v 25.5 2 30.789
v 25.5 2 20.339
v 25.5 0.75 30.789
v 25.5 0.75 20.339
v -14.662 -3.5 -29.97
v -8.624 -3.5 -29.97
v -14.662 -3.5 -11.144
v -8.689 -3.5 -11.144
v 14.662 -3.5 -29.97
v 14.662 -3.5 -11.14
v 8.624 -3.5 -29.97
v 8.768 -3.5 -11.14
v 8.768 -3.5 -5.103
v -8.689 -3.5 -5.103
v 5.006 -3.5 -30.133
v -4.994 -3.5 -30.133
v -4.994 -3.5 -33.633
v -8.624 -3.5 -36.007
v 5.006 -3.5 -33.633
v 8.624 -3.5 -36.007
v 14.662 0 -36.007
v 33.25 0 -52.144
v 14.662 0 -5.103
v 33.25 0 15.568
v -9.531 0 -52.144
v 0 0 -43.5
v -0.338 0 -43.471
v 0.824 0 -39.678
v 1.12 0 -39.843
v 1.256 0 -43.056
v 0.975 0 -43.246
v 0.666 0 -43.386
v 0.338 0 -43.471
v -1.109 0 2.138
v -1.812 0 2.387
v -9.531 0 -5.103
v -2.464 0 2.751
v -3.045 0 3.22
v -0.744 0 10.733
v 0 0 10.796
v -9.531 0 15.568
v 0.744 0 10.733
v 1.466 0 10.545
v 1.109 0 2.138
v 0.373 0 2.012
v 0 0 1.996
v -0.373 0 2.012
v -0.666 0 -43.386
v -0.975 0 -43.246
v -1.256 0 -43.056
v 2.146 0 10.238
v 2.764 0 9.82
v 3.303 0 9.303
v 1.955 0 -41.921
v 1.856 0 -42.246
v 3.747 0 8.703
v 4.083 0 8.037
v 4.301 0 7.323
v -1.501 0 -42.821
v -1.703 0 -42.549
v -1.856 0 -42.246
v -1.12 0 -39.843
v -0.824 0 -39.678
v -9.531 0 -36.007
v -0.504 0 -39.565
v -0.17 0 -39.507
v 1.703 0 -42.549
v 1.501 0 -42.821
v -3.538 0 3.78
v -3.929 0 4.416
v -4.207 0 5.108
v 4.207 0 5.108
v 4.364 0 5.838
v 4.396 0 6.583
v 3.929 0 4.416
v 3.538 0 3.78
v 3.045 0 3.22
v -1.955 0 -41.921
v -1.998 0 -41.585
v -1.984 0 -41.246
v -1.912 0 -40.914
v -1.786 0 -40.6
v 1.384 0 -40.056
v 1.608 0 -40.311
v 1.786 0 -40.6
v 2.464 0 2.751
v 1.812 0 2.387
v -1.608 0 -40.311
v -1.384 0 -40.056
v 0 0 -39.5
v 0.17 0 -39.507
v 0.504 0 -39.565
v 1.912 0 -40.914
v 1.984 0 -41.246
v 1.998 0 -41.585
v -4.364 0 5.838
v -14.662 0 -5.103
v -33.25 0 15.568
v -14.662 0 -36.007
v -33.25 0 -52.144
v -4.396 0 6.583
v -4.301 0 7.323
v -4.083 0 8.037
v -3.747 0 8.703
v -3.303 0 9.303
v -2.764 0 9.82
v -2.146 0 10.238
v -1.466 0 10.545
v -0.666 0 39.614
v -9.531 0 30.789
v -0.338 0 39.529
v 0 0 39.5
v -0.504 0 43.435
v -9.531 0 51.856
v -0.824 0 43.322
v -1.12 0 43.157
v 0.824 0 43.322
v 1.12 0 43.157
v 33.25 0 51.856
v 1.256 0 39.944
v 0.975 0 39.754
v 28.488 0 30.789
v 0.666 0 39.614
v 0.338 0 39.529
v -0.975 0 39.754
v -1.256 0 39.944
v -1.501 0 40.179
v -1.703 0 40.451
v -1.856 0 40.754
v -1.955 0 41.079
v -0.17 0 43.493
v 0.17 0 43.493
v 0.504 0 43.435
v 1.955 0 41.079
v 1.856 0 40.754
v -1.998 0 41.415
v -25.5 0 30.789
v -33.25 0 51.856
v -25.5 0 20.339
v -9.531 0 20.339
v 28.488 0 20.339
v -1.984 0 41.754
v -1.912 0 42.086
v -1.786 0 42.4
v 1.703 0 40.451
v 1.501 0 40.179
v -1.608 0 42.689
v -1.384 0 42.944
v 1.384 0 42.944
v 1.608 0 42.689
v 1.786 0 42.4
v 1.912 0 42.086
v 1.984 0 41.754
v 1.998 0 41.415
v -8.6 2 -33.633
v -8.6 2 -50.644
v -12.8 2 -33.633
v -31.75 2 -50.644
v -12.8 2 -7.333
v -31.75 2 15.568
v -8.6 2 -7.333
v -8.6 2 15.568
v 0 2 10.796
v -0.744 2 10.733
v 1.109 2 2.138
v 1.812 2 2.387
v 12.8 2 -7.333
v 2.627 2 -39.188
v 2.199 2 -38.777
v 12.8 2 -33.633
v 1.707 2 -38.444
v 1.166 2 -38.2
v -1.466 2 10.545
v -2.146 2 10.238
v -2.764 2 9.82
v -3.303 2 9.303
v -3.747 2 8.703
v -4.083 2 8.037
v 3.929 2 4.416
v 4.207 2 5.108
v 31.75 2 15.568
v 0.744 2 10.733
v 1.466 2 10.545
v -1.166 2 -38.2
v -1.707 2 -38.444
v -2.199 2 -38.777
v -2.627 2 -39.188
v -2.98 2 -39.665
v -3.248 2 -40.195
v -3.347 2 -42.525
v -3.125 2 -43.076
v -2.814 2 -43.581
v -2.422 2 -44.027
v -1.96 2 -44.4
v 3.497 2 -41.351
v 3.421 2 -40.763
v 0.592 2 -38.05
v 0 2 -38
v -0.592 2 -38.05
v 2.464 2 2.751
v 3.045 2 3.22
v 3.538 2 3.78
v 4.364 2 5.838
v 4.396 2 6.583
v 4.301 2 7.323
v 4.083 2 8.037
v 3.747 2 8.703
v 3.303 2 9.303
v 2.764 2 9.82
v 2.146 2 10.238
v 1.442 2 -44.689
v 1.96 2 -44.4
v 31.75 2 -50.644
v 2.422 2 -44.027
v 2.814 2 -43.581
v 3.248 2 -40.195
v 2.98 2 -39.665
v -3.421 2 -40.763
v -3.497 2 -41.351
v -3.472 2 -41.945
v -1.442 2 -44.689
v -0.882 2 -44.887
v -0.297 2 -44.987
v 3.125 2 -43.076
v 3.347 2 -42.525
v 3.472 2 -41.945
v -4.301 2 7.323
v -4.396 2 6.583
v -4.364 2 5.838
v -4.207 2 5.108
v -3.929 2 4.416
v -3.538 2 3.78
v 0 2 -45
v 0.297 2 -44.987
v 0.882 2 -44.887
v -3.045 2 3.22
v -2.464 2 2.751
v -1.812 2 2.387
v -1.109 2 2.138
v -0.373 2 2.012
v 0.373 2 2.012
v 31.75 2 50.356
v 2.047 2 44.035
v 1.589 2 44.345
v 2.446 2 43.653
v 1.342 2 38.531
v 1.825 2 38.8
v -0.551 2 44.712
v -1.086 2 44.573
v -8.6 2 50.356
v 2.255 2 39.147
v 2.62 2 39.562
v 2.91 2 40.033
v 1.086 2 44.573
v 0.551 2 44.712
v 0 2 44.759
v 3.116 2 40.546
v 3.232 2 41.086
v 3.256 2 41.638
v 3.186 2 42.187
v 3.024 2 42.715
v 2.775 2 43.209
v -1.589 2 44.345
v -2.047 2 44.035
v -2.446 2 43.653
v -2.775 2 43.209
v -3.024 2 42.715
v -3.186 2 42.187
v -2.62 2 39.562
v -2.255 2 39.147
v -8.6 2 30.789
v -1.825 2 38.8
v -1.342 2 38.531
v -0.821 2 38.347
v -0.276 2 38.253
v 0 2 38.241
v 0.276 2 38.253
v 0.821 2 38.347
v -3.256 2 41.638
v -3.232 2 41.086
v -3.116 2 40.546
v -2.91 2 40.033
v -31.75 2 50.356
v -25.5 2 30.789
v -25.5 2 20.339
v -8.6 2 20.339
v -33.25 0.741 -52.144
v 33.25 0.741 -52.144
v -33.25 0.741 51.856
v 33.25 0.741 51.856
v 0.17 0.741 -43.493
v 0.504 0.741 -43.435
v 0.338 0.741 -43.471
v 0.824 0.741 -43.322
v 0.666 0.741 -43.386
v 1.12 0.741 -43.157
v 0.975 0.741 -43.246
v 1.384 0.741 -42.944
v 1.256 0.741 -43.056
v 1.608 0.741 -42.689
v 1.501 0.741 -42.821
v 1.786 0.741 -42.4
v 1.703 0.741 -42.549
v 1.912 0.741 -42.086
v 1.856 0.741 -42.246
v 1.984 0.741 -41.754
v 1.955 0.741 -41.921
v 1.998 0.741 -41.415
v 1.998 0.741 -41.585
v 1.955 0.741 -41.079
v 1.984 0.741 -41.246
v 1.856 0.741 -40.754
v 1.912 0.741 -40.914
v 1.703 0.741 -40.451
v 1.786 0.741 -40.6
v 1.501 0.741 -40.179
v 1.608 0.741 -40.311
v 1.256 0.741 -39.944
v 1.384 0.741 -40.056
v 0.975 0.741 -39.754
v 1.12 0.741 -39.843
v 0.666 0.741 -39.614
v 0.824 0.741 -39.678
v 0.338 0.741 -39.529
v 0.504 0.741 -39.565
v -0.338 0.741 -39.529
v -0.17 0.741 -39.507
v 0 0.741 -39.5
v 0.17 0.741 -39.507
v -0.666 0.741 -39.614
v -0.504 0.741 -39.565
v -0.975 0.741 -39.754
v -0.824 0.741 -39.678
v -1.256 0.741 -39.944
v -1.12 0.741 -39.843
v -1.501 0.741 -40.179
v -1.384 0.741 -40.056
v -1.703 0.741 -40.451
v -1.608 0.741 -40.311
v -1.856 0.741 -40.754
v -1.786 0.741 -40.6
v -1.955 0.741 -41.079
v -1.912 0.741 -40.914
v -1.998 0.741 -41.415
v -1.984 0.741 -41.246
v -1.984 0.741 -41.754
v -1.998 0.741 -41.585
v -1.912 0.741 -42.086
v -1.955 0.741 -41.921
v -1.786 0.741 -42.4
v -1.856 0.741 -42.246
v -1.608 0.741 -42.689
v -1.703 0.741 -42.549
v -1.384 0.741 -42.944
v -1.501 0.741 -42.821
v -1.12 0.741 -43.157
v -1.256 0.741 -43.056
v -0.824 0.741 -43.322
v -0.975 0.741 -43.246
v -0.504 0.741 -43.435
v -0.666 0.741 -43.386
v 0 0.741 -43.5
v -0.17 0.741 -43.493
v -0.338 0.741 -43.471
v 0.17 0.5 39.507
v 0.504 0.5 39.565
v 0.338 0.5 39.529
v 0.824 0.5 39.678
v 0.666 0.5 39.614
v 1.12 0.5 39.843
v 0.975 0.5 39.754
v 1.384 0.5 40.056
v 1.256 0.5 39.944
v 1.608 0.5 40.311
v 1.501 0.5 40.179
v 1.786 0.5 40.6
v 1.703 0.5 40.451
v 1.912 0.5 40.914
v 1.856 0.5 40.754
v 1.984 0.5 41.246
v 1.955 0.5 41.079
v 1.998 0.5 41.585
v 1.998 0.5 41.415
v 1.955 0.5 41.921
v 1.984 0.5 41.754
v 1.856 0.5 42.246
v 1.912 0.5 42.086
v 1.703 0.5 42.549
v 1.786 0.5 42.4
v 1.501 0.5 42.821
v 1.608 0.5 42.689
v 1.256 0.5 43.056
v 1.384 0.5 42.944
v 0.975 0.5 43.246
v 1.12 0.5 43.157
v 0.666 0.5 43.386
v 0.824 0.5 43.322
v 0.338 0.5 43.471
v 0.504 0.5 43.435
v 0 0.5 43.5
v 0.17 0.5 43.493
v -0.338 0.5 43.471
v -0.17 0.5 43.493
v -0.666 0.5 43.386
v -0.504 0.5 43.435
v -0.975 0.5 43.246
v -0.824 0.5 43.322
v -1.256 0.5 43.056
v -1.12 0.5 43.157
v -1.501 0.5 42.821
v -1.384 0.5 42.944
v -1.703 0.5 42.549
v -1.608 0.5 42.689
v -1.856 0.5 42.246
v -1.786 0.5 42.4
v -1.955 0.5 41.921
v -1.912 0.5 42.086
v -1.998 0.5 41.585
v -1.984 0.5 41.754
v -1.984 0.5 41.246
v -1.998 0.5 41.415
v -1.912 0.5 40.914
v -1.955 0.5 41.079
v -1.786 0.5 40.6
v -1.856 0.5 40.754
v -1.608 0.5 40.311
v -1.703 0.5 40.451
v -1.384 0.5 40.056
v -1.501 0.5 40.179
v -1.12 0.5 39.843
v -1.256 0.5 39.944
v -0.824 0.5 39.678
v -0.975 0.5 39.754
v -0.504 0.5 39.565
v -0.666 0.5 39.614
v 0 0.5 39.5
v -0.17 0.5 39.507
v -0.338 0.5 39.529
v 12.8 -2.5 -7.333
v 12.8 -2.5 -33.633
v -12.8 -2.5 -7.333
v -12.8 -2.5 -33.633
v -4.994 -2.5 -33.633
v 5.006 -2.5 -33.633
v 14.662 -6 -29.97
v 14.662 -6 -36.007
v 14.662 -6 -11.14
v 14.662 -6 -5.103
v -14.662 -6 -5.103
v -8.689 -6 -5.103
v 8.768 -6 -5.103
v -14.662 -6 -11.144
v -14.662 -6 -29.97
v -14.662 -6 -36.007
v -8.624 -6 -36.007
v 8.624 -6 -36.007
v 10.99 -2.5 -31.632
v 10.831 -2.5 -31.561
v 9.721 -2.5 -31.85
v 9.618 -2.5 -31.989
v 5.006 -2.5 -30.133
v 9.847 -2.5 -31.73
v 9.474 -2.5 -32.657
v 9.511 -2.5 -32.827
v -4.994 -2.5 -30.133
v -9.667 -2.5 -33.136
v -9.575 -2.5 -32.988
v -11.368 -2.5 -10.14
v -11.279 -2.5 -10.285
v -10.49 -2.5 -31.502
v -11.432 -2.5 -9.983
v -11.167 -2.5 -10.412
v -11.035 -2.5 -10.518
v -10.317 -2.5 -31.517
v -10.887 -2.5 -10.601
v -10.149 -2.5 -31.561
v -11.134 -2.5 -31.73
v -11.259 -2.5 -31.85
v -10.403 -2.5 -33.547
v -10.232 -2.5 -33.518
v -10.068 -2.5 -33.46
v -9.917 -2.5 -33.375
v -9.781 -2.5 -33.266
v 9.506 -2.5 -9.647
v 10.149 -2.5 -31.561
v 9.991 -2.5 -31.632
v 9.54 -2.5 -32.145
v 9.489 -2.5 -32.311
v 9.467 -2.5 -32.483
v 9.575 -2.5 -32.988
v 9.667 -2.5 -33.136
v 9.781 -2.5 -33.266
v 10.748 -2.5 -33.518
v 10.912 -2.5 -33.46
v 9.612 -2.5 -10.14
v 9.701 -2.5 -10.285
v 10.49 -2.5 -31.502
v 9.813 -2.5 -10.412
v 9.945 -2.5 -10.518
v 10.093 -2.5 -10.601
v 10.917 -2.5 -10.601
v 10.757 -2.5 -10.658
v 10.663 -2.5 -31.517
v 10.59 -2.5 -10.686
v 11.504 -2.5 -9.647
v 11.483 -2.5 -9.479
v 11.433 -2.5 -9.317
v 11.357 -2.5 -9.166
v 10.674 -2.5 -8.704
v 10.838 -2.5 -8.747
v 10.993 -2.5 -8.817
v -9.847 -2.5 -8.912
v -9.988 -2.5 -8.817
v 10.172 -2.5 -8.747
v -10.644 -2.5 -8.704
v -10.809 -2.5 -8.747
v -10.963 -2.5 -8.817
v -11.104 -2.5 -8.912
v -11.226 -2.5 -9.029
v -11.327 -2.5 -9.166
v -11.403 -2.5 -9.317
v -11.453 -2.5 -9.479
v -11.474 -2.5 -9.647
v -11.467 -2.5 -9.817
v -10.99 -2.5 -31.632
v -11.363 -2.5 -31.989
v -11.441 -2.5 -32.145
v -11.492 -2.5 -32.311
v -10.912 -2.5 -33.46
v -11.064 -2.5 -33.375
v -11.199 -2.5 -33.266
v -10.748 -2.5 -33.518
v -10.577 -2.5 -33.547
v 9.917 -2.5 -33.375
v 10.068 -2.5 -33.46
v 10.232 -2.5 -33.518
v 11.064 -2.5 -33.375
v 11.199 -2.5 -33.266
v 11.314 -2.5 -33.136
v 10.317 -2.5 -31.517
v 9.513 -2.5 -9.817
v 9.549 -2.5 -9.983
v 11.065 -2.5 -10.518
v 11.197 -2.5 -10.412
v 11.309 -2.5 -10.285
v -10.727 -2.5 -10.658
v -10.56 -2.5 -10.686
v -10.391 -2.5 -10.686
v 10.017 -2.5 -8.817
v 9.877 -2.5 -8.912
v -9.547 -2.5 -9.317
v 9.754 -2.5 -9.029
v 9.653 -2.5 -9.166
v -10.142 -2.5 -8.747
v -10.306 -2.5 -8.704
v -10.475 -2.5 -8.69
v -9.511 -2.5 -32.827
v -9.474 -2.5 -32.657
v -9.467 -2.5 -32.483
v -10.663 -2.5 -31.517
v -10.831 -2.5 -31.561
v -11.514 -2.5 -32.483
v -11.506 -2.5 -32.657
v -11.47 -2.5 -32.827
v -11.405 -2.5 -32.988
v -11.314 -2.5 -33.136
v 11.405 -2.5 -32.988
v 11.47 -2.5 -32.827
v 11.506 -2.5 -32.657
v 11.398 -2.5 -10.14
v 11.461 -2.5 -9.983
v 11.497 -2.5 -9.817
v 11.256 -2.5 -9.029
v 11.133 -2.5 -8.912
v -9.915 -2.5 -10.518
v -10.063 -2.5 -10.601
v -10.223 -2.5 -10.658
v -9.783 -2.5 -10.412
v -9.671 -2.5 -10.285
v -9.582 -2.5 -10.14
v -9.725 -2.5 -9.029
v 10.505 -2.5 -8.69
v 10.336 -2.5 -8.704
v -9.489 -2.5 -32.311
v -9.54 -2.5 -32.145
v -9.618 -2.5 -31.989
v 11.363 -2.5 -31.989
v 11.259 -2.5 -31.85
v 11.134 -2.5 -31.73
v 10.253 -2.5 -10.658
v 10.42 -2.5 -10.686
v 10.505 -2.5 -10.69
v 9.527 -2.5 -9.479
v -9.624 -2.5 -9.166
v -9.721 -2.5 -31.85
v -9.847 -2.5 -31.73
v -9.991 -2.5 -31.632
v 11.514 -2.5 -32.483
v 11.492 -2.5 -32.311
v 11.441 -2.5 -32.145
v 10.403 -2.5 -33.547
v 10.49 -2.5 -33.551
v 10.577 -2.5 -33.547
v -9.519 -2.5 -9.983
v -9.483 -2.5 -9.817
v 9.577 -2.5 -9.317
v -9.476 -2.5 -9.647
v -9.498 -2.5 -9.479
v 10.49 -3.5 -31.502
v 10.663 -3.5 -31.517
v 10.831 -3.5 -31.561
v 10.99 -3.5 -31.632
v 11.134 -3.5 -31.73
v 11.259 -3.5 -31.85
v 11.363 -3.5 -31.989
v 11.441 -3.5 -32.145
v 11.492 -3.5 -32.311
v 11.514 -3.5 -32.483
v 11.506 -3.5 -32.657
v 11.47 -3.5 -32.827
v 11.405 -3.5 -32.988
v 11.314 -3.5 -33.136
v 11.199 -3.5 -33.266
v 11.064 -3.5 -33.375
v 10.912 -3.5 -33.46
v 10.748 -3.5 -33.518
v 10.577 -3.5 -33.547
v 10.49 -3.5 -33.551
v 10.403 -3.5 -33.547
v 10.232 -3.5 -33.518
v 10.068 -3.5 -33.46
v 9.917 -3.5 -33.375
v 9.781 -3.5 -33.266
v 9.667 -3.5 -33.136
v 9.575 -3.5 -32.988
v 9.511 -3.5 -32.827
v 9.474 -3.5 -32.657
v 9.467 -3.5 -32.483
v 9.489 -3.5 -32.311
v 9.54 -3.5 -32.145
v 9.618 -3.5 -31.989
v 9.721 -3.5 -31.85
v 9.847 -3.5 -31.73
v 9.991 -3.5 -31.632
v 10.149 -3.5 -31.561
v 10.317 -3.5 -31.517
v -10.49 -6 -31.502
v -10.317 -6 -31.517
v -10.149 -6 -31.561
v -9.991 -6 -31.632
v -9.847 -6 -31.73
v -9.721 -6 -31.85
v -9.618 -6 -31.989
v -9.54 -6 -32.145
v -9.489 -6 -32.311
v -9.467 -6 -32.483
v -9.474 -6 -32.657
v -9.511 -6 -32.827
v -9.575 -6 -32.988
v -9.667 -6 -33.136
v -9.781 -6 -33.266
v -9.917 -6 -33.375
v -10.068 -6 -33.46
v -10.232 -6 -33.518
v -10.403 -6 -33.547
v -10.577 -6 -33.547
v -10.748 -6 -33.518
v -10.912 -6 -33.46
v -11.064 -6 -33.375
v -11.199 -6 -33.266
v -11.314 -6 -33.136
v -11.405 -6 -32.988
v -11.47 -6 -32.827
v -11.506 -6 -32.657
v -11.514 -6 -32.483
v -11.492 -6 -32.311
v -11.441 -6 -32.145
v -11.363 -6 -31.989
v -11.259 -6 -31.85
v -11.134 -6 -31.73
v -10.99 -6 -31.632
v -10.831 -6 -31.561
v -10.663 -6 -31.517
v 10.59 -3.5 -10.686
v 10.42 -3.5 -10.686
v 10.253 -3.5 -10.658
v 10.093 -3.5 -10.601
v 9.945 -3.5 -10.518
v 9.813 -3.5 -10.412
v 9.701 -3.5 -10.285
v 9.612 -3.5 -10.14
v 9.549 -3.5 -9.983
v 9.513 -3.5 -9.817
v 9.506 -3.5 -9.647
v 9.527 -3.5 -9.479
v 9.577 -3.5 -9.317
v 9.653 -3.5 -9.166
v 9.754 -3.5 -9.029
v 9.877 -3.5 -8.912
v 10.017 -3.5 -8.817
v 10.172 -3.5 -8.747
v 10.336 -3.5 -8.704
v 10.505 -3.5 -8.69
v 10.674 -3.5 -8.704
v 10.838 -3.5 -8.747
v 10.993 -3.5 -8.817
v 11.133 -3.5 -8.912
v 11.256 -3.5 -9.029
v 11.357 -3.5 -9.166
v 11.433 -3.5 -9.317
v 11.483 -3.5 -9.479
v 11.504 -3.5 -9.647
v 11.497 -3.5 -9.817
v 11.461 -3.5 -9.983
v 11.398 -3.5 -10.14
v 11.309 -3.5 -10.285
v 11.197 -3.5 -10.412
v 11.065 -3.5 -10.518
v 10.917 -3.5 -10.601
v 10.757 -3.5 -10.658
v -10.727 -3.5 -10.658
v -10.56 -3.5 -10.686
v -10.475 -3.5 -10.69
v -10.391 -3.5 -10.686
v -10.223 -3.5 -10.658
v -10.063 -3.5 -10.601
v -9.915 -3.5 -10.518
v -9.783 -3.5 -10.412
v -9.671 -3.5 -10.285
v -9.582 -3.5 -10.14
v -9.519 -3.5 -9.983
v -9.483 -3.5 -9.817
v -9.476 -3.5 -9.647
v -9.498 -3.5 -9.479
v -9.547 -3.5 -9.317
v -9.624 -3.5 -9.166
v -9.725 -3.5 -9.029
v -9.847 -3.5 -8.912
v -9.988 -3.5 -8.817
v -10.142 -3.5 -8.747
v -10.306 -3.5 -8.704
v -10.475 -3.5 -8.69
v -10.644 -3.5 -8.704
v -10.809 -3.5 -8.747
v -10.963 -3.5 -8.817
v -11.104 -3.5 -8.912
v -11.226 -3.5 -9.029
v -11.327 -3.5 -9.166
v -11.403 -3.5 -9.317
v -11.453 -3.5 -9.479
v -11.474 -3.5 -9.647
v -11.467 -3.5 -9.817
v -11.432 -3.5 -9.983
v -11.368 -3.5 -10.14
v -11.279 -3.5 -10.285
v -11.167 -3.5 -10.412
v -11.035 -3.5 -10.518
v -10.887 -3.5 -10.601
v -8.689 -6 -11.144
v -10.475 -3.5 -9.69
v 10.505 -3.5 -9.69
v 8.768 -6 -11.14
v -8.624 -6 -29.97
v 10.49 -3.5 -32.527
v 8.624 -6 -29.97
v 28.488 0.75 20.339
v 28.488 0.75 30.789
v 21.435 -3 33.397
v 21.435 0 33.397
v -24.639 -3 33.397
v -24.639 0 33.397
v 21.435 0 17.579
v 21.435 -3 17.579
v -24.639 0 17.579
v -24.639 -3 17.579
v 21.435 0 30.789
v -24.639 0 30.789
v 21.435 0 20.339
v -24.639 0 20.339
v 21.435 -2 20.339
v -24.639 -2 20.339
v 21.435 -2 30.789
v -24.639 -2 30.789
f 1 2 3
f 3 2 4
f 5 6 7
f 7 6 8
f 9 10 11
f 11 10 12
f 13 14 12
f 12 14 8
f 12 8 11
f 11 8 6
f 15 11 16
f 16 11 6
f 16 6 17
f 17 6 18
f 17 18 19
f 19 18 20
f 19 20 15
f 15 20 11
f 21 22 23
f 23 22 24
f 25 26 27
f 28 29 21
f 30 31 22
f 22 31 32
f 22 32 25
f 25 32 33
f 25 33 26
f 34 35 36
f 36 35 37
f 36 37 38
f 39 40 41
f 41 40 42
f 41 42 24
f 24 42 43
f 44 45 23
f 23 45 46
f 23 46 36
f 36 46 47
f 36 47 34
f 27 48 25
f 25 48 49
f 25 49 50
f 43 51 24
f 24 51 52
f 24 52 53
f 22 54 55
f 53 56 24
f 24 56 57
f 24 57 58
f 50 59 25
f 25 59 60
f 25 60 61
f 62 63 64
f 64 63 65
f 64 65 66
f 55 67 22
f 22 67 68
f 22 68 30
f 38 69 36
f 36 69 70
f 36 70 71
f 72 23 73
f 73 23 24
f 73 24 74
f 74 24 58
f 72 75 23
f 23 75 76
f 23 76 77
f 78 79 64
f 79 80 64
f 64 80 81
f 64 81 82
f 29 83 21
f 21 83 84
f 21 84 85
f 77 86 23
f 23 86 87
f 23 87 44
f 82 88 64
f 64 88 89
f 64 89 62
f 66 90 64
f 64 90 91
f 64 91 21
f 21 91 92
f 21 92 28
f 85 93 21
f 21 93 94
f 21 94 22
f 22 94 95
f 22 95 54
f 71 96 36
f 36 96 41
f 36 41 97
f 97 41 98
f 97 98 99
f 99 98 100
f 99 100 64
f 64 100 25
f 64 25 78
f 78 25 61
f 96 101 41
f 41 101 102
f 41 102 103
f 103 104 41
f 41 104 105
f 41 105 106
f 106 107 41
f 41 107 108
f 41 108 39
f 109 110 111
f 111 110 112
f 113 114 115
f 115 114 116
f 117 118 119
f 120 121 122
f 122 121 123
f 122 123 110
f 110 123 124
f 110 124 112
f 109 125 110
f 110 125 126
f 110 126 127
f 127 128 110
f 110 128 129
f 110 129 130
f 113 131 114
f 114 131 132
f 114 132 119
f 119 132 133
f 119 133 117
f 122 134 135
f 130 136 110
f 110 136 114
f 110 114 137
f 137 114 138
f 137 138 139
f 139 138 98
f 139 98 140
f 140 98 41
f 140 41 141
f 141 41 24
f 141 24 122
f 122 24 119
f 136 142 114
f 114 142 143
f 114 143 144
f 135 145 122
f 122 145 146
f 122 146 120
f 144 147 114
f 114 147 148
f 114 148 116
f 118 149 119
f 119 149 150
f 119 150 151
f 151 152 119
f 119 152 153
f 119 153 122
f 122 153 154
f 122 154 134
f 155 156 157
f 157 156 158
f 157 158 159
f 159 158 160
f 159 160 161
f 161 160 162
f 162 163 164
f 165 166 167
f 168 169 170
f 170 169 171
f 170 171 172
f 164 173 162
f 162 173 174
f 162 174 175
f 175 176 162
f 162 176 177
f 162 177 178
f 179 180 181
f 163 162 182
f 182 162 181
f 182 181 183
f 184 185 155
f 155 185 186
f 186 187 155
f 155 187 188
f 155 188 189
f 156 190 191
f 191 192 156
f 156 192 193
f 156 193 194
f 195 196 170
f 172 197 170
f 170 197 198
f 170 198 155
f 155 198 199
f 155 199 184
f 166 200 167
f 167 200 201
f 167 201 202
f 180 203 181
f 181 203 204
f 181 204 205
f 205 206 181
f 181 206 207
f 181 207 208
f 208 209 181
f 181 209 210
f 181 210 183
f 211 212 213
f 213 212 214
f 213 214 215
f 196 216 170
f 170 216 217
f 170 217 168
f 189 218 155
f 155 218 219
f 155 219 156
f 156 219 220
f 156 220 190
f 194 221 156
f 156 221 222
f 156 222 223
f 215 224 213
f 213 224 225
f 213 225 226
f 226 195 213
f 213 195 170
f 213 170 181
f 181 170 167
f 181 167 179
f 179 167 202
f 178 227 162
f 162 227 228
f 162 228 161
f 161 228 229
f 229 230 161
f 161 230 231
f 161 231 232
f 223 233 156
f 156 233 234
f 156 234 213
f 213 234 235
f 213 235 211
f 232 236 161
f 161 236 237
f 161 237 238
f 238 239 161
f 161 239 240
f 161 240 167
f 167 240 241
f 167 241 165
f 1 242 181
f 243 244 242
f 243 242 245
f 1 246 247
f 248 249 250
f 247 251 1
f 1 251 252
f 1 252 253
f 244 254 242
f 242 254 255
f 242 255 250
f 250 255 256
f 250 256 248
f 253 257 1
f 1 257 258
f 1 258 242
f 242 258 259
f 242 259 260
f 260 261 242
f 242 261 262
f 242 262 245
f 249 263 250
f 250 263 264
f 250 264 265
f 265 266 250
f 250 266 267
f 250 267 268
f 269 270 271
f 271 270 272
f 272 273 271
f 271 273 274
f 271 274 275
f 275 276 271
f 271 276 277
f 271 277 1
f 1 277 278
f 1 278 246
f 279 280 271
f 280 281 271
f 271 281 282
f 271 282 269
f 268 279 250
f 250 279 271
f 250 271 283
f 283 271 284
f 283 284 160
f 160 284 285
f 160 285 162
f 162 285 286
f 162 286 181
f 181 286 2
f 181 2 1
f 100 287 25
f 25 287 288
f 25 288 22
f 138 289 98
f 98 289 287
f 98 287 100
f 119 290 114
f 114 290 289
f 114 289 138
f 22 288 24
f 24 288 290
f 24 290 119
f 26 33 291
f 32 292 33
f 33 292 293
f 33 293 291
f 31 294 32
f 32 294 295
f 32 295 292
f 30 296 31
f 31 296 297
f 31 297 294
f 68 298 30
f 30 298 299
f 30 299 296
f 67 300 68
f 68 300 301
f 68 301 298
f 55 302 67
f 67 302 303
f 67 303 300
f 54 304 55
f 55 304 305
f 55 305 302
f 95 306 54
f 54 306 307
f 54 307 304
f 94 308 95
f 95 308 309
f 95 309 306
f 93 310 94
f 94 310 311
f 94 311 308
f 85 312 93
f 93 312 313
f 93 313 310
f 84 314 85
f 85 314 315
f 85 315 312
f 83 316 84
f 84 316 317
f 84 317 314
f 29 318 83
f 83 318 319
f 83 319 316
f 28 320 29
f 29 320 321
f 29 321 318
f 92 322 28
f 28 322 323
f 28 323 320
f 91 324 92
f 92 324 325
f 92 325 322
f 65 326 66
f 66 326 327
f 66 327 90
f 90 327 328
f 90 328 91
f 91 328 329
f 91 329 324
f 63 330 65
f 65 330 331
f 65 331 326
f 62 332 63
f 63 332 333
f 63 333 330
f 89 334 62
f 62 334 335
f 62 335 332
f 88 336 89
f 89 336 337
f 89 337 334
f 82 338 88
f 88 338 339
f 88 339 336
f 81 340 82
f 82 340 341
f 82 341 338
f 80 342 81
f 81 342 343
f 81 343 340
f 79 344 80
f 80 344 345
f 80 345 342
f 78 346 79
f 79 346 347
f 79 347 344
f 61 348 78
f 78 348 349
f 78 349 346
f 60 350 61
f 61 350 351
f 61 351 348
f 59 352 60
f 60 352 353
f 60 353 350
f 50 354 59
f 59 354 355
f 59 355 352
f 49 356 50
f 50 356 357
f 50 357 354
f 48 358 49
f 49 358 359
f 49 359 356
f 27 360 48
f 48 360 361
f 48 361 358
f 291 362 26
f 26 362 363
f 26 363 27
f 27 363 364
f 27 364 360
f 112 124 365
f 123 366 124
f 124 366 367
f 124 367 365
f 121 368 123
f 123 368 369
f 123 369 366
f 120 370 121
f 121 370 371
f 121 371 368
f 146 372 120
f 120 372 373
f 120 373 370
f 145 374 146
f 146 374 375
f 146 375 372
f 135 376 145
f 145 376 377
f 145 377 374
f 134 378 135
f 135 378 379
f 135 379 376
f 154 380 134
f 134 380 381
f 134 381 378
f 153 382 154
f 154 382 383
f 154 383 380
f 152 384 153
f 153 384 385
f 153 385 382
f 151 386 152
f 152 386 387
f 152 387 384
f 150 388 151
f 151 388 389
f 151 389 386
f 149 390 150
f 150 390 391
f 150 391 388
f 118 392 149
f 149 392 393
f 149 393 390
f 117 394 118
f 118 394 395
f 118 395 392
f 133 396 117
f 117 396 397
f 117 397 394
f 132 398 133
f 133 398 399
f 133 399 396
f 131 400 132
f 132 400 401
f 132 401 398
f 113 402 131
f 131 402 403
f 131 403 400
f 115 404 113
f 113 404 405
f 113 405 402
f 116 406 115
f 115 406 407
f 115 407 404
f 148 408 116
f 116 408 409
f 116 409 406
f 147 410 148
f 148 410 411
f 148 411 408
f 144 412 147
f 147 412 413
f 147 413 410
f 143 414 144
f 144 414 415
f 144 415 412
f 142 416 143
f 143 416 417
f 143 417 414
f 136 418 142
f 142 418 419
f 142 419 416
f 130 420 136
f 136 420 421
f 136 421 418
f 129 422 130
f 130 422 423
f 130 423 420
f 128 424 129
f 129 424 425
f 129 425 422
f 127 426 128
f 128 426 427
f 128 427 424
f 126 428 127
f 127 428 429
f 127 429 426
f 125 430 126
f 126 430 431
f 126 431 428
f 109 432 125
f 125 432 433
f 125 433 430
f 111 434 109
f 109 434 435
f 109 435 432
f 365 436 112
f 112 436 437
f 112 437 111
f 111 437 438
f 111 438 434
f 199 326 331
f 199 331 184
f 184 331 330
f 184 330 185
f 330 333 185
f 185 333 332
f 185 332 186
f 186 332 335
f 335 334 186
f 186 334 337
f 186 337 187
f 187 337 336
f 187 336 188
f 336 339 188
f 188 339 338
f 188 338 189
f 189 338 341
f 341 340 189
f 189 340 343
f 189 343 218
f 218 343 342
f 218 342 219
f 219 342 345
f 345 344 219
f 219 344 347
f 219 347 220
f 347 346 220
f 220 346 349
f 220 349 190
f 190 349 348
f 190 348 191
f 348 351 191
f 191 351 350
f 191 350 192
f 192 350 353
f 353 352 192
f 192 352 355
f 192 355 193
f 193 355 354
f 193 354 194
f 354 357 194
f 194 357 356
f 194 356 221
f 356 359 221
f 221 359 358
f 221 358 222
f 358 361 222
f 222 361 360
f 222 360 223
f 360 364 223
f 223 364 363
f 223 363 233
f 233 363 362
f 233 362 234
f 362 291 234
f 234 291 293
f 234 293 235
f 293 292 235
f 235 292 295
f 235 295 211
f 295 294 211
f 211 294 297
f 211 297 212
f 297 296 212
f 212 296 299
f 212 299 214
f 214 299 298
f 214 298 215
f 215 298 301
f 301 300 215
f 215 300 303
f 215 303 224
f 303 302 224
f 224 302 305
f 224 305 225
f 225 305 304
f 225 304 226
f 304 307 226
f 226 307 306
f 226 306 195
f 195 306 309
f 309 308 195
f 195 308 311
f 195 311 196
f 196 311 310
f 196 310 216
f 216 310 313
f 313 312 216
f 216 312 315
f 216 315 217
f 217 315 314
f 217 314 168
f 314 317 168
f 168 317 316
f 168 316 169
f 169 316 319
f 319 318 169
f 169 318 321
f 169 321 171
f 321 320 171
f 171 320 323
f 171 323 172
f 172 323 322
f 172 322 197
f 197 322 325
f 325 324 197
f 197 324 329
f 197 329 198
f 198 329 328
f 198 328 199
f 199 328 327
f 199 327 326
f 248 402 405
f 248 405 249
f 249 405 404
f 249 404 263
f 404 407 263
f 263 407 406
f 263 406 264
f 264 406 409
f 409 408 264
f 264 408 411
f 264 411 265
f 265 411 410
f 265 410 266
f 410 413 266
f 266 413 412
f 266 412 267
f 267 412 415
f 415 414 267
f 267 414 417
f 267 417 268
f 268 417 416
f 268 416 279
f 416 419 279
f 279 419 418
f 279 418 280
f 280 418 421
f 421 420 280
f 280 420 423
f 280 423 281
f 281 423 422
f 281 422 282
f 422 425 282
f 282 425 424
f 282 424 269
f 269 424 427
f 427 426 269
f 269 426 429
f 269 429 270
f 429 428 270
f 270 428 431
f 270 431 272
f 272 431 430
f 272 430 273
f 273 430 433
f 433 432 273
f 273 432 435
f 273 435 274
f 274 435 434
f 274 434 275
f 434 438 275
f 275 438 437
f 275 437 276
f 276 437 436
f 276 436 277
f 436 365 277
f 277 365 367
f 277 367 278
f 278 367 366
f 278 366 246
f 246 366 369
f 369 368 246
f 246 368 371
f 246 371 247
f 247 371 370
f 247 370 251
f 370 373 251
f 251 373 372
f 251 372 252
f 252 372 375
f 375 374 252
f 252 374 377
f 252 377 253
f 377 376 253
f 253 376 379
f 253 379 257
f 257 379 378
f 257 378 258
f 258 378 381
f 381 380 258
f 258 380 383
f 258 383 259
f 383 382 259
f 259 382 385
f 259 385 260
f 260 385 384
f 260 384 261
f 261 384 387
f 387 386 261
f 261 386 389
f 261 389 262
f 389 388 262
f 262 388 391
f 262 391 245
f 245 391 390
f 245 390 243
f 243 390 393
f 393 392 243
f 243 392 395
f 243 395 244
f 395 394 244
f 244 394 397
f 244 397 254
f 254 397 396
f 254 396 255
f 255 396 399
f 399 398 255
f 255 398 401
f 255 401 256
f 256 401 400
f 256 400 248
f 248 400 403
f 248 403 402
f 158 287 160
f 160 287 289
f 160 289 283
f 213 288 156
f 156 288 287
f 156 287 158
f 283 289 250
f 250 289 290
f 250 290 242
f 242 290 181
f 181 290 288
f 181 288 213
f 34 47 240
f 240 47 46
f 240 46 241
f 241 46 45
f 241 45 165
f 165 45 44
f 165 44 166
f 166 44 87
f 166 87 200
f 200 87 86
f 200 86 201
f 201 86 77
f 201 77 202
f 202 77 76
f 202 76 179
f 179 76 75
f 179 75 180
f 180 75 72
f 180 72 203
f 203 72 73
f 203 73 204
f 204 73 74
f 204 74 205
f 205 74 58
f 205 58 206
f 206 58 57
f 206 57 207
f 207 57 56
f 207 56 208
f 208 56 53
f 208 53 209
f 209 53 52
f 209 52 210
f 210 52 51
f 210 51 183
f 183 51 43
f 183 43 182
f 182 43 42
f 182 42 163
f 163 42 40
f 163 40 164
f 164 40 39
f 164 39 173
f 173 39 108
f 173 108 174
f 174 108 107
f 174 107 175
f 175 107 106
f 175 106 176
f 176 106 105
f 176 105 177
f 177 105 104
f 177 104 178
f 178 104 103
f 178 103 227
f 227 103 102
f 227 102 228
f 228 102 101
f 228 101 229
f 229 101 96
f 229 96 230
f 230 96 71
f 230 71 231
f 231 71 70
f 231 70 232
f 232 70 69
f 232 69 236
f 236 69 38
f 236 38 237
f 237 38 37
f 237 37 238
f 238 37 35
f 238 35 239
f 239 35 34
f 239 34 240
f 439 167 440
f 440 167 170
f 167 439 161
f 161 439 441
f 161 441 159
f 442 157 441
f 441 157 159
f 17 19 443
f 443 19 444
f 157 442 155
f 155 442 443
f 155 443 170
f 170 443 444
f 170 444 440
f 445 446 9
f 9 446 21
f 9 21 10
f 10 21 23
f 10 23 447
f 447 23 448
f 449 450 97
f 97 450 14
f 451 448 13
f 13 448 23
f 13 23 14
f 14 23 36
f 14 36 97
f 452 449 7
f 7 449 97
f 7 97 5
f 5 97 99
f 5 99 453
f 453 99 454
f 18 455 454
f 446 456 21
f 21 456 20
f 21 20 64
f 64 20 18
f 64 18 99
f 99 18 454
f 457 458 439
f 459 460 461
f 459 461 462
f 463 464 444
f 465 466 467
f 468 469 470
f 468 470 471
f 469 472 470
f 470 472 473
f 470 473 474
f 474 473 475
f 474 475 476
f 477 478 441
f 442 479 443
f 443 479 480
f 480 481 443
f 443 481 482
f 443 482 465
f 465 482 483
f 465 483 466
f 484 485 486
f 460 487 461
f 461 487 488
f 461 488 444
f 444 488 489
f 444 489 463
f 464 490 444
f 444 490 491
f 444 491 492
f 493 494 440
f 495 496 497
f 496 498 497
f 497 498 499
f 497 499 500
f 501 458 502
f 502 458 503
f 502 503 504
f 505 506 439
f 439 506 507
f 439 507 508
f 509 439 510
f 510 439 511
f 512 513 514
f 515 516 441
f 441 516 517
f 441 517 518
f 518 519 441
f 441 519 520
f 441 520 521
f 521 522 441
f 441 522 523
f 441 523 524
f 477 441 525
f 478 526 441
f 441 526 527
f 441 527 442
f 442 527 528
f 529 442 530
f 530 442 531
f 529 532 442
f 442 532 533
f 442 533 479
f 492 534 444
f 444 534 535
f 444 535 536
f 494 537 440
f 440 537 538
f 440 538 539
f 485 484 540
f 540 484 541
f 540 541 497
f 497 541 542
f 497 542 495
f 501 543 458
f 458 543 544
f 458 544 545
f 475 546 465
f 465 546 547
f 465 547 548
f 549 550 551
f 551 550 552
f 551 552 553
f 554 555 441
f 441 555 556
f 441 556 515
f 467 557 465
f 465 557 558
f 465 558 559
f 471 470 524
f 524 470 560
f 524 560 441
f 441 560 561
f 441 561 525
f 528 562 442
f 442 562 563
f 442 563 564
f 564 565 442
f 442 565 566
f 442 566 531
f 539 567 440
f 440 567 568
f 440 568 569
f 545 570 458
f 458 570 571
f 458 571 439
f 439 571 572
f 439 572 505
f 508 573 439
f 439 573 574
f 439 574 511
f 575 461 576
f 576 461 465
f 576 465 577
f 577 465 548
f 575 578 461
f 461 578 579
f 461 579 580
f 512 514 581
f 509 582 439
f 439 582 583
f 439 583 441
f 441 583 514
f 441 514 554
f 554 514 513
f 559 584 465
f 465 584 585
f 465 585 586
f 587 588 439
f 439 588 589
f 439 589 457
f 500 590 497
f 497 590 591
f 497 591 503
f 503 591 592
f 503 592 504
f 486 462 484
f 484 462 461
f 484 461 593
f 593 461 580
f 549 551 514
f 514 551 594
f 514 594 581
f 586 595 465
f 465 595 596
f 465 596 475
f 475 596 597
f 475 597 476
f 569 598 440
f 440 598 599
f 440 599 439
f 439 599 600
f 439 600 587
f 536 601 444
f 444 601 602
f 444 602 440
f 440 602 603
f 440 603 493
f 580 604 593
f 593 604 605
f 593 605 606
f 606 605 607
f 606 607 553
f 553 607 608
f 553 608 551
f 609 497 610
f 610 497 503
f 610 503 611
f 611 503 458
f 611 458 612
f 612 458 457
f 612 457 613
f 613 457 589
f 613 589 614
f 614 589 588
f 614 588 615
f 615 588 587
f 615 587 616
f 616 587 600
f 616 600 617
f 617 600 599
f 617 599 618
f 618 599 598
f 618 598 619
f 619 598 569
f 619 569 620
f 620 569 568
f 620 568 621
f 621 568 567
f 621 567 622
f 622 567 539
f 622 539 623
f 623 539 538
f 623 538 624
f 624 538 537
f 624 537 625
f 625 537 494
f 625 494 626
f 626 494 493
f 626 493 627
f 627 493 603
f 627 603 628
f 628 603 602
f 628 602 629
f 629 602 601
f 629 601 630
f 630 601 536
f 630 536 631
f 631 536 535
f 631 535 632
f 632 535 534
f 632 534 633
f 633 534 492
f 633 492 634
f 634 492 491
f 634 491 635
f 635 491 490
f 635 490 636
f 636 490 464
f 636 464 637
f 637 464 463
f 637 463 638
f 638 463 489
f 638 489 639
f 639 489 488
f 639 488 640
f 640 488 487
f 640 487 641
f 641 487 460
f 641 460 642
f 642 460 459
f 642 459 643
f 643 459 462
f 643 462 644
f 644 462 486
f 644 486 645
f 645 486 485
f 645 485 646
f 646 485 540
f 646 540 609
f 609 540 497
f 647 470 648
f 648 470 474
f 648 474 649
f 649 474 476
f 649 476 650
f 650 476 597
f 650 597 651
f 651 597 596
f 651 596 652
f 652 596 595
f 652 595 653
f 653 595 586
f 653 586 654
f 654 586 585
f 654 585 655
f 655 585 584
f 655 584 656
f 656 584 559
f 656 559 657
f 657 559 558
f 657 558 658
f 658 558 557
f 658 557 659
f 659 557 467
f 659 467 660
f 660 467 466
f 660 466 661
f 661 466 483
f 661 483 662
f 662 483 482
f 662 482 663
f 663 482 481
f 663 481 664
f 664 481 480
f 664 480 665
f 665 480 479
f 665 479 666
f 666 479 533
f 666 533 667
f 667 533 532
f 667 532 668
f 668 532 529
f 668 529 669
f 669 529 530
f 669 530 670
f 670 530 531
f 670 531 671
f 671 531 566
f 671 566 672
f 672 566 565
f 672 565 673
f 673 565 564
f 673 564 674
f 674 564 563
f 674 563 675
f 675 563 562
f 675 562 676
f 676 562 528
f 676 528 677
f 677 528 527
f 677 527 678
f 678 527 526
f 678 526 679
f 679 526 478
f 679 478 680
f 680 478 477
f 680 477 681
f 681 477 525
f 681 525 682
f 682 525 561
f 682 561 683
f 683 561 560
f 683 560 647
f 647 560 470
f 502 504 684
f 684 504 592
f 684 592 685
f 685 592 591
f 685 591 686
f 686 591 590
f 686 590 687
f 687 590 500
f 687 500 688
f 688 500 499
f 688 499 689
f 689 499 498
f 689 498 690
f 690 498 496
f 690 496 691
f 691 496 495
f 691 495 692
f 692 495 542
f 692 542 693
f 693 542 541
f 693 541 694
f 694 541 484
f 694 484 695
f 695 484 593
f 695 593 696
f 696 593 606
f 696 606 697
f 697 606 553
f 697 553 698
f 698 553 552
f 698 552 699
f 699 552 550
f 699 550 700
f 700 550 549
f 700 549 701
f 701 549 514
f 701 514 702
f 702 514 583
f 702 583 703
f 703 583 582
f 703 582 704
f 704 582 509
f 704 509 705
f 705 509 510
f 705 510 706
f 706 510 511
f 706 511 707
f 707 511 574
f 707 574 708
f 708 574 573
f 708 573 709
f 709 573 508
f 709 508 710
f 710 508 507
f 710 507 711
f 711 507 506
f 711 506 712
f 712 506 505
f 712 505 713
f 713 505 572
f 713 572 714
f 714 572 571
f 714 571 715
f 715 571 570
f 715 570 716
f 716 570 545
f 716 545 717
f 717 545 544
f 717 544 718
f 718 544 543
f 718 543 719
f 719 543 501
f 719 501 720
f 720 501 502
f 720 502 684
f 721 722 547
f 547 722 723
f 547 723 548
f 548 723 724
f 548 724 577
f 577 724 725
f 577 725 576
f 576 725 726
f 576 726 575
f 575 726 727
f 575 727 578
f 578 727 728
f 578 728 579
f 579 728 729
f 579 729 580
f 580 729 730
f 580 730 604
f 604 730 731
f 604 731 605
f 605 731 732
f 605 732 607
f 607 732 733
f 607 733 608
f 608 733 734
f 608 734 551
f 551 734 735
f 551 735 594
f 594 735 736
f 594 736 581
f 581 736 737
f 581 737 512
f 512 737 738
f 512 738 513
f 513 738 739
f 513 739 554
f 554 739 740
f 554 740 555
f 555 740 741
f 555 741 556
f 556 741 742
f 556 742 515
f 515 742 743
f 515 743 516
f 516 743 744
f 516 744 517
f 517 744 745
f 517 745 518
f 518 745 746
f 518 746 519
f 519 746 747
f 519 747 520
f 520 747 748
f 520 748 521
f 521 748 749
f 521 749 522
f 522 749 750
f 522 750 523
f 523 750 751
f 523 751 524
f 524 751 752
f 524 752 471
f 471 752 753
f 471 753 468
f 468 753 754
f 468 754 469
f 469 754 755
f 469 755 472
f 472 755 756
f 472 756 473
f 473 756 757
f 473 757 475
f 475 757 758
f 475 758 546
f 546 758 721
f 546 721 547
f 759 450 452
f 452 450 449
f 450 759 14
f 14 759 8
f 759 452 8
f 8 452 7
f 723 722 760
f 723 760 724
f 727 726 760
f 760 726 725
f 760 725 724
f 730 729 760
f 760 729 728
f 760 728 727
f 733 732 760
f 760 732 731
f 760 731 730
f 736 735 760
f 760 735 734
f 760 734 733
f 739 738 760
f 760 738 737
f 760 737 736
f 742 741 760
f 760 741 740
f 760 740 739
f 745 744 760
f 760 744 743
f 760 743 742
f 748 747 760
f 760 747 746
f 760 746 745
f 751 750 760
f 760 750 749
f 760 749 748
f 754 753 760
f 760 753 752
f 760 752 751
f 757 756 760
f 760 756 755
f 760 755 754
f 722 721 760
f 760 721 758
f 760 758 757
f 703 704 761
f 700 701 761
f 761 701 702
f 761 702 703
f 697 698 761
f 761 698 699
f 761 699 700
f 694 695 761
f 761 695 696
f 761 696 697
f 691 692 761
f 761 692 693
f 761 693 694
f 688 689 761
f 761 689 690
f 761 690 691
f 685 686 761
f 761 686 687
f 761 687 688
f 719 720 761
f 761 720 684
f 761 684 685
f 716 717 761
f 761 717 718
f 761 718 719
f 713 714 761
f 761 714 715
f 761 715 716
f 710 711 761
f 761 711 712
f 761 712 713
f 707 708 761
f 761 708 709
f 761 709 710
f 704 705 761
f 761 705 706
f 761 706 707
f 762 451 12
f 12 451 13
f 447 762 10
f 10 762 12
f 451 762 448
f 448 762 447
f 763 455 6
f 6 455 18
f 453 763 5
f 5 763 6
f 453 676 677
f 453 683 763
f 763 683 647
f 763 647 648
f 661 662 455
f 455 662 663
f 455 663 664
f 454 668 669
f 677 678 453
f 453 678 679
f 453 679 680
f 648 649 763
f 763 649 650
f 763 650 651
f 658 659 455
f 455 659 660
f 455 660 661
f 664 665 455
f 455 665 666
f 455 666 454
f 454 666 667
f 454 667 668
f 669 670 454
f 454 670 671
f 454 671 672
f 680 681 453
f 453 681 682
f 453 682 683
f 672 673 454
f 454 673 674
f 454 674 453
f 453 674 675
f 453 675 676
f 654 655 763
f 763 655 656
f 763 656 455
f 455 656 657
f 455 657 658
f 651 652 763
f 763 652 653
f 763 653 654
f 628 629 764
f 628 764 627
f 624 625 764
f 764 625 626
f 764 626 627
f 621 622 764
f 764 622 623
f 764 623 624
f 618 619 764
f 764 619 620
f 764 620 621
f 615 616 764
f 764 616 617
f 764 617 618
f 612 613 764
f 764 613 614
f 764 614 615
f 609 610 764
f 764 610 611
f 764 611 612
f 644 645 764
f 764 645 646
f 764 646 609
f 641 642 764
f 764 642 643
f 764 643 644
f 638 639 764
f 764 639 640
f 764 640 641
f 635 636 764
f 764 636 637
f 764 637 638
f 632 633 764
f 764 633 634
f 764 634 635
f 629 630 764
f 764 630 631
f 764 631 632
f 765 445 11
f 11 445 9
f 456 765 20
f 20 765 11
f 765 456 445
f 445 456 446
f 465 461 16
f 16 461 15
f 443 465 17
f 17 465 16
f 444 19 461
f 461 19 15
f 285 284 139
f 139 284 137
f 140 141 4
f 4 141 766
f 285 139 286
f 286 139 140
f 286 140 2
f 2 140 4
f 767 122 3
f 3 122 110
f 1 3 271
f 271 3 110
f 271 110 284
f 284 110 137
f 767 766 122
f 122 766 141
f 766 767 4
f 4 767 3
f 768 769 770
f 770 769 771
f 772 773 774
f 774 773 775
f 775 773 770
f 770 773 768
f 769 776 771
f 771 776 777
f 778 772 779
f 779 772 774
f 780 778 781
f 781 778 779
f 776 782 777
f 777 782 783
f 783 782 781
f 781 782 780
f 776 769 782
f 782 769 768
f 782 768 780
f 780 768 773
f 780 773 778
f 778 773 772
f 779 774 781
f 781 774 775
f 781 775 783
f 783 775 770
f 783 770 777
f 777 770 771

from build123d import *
from OCP.BRepFilletAPI import BRepFilletAPI_MakeChamfer

# Parameters (mm, degrees)
SKETCH1_W               = 66.5
SKETCH1_H               = 104
BOSS_EXTRUDE2_DEPTH     = 2
SKETCH2_R               = 2
CUT_EXTRUDE8_DEPTH      = 2
CHAMFER1_SIZE           = 1.5
CHAMFER1_SIZE2          = 1.258649447
SKETCH4_R               = 4.4
CUT_EXTRUDE9_DEPTH      = 5.5
SKETCH5_W               = 25.6
SKETCH5_H               = 26.3
CUT_EXTRUDE13_DEPTH     = 3.5
SKETCH10_W              = 29.323105628
SKETCH10_H              = 30.904253481
BOSS_EXTRUDE8_DEPTH     = 3.5
SKETCH11_W              = 25.6
SKETCH11_H              = 26.3
CUT_EXTRUDE14_DEPTH     = 2.5
SKETCH13_R              = 1.024420739
CUT_EXTRUDE17_DEPTH     = 2.5
SKETCH16_R              = 1
CUT_EXTRUDE18_DEPTH     = 2.5
SKETCH18_W              = 5.972279495
SKETCH18_H              = 6.041370721
BOSS_EXTRUDE9_DEPTH     = 2.5
SKETCH19_W              = 5.893369268
SKETCH19_H              = 6.037109983
BOSS_EXTRUDE10_DEPTH    = 2.5
SKETCH20_W              = 6.037109982
SKETCH20_H              = 6.037109982
SCREEN_SCREW_HOLE_DEPTH = 2.5
SKETCH21_W              = 6.037109982
SKETCH21_H              = 6.037109982
BOSS_EXTRUDE12_DEPTH    = 2.5
SKETCH22_R              = 1.024420739
CUT_EXTRUDE20_DEPTH     = 3.5
SKETCH24_W              = 10
SKETCH24_H              = 3.5
CUT_EXTRUDE21_DEPTH     = 3.5
SKETCH26_W              = 51
SKETCH26_H              = 10.45
CUT_EXTRUDE22_DEPTH     = 3.5
SKETCH27_W              = 51.13902933
SKETCH27_H              = 15.817377558
BOSS_EXTRUDE18_DEPTH    = 3
SKETCH29_W              = 51
SKETCH29_H              = 10.45
CUT_EXTRUDE24_DEPTH     = 2
SKETCH30_W              = 4.064887468
SKETCH30_H              = 15.817377558
CUT_EXTRUDE25_DEPTH     = 3
SKETCH31_W              = 2.987937541
SKETCH31_H              = 10.45
CUT_EXTRUDE26_DEPTH     = 0.75
SKETCH32_W              = 15.817377558
SKETCH32_H              = 3
CUT_EXTRUDE27_DEPTH     = 1


with BuildPart() as part:
    # Sketch1 → Boss-Extrude2 (new body)
    with BuildSketch(Plane(origin=(0, 0, 0), x_dir=(1, 0, 0), z_dir=(0, 1, 0))):
        with Locations((0, 0.143740714)):
            Rectangle(SKETCH1_W, SKETCH1_H)
    extrude(amount=BOSS_EXTRUDE2_DEPTH)

    # Sketch2 → Cut-Extrude8 (cut)
    with BuildSketch(Plane(origin=(0, 0, 0), x_dir=(1, 0, 0), z_dir=(0, 1, 0))):
        with Locations(Location((0, 41.5, 0), (0, 0, 270))):
            Circle(SKETCH2_R)
        with Locations(Location((0, -41.5, 0), (0, 0, 90))):
            Circle(SKETCH2_R)
    extrude(amount=CUT_EXTRUDE8_DEPTH, mode=Mode.SUBTRACT)

    # Chamfer1: one chamfer whose edges measure the first distance from different faces: ONE call of the kernel's chamfer builder (chamfer() names one face for all edges)
    chamfer1_edges_1 = [part.edges().sort_by_distance(p)[0] for p in [
        (0, 2, 51.856259286),
        (-33.25, 2, -0.143740714),
        (0, 2, -43.5),
        (0, 2, -52.143740714),
        (33.25, 2, -0.143740714),
    ]]
    chamfer1_side_1 = [part.faces().sort_by_distance(p)[0] for p in [
        (0, 2, -0.144264973),
    ]]
    chamfer1_edges_2 = [part.edges().sort_by_distance(p)[0] for p in [
        (0, 2, 43.5),
    ]]
    chamfer1_side_2 = [part.faces().sort_by_distance(p)[0] for p in [
        (0, 1, 43.5),
    ]]
    chamfer1 = BRepFilletAPI_MakeChamfer(part.part.solid().wrapped)
    for e in chamfer1_edges_1:
        chamfer1.Add(CHAMFER1_SIZE, CHAMFER1_SIZE2, e.wrapped, chamfer1_side_1[0].wrapped)  # the first distance lies on this face
    for e in chamfer1_edges_2:
        chamfer1.Add(CHAMFER1_SIZE, CHAMFER1_SIZE2, e.wrapped, chamfer1_side_2[0].wrapped)  # the first distance lies on this face
    add(Compound.cast(chamfer1.Shape()), mode=Mode.REPLACE)

    # Sketch4 → Cut-Extrude9 (cut)
    with BuildSketch(Plane(origin=(0, 2, 0), x_dir=(1, 0, 0), z_dir=(0, 1, 0))):
        with Locations(Location((0, -6.396461767, 0), (0, 0, 270))):
            Circle(SKETCH4_R)
    extrude(amount=-CUT_EXTRUDE9_DEPTH, mode=Mode.SUBTRACT)

    # Sketch5 → Cut-Extrude13 (cut)
    with BuildSketch(Plane(origin=(0, 2, 0), x_dir=(1, 0, 0), z_dir=(0, 1, 0))):
        with Locations((0, 20.483051726)):
            Rectangle(SKETCH5_W, SKETCH5_H)
    extrude(amount=-CUT_EXTRUDE13_DEPTH, mode=Mode.SUBTRACT)

    # Sketch10 → Boss-Extrude8 (add)
    with BuildSketch(Plane.XZ):
        with Locations((0, -20.554922083)):
            Rectangle(SKETCH10_W, SKETCH10_H)
    extrude(amount=BOSS_EXTRUDE8_DEPTH)

    # Sketch11 → Cut-Extrude14 (cut)
    with BuildSketch(Plane(origin=(0, 0, 0), x_dir=(1, 0, 0), z_dir=(0, 1, 0))):
        with Locations((0, 20.483051726)):
            Rectangle(SKETCH11_W, SKETCH11_H)
    extrude(amount=-CUT_EXTRUDE14_DEPTH, mode=Mode.SUBTRACT)

    # Sketch13 → Cut-Extrude17 (cut)
    with BuildSketch(Plane(origin=(0, -2.5, 0), x_dir=(1, 0, 0), z_dir=(0, 1, 0))):
        with Locations(Location((-10.490197097, 32.526603432, 0), (0, 0, 270))):
            Circle(SKETCH13_R)
        with Locations(Location((10.490197097, 32.526603432, 0), (0, 0, 90))):
            Circle(SKETCH13_R)
    extrude(amount=-CUT_EXTRUDE17_DEPTH, mode=Mode.SUBTRACT)

    # Sketch16 → Cut-Extrude18 (cut)
    with BuildSketch(Plane(origin=(0, -2.5, 0), x_dir=(1, 0, 0), z_dir=(0, 1, 0))):
        with Locations(Location((-10.475369968, 9.689887436, 0), (0, 0, 270))):
            Circle(SKETCH16_R)
        with Locations(Location((10.505024226, 9.689887436, 0), (0, 0, 90))):
            Circle(SKETCH16_R)
    extrude(amount=-CUT_EXTRUDE18_DEPTH, mode=Mode.SUBTRACT)

    # Sketch18 → Boss-Extrude9 (add)
    with BuildSketch(Plane.XZ.offset(3.5)):
        with Locations((-11.675413066, -8.123480703)):
            Rectangle(SKETCH18_W, SKETCH18_H)
    extrude(amount=BOSS_EXTRUDE9_DEPTH)

    # Sketch19 → Boss-Extrude10 (add)
    with BuildSketch(Plane(origin=(0, -3.5, 0), x_dir=(-1, 0, 0), z_dir=(0, -1, 0))):
        with Locations((-11.71486818, 8.121350334)):
            Rectangle(SKETCH19_W, SKETCH19_H)
    extrude(amount=BOSS_EXTRUDE10_DEPTH)

    # Sketch20 → Screen screw hole (add)
    with BuildSketch(Plane(origin=(0, -3.5, 0), x_dir=(-1, 0, 0), z_dir=(0, -1, 0))):
        with Locations((11.642997823, 32.988493832)):
            Rectangle(SKETCH20_W, SKETCH20_H)
    extrude(amount=SCREEN_SCREW_HOLE_DEPTH)

    # Sketch21 → Boss-Extrude12 (add)
    with BuildSketch(Plane(origin=(0, -3.5, 0), x_dir=(-1, 0, 0), z_dir=(0, -1, 0))):
        with Locations((-11.642997823, 32.988493832)):
            Rectangle(SKETCH21_W, SKETCH21_H)
    extrude(amount=BOSS_EXTRUDE12_DEPTH)

    # Sketch22 → Cut-Extrude20 (cut)
    with BuildSketch(Plane(origin=(0, -2.5, 0), x_dir=(1, 0, 0), z_dir=(0, 1, 0))):
        with Locations(Location((-10.490197097, 32.526603432, 0), (0, 0, 270))):
            Circle(SKETCH22_R)
    extrude(amount=-CUT_EXTRUDE20_DEPTH, mode=Mode.SUBTRACT)

    # Sketch24 → Cut-Extrude21 (cut)
    with BuildSketch(Plane(origin=(0, -2.5, 0), x_dir=(1, 0, 0), z_dir=(0, 1, 0))):
        with Locations((0.005557968, 31.883051726)):
            Rectangle(SKETCH24_W, SKETCH24_H)
    extrude(amount=-CUT_EXTRUDE21_DEPTH, mode=Mode.SUBTRACT)

    # Sketch26 → Cut-Extrude22 (cut)
    with BuildSketch(Plane(origin=(0, 2, 0), x_dir=(1, 0, 0), z_dir=(0, 1, 0))):
        with Locations((0, -25.564311012)):
            Rectangle(SKETCH26_W, SKETCH26_H)
    extrude(amount=-CUT_EXTRUDE22_DEPTH, mode=Mode.SUBTRACT)

    # Sketch31 → Cut-Extrude26 (cut)
    with BuildSketch(Plane(origin=(0, 0, 0), x_dir=(-1, 0, 0), z_dir=(0, -1, 0))):
        with Locations((-26.993968771, -25.564311012)):
            Rectangle(SKETCH31_W, SKETCH31_H)
    extrude(amount=-CUT_EXTRUDE26_DEPTH, mode=Mode.SUBTRACT)


with BuildPart() as body_2:
    # Sketch27 → Boss-Extrude18 (new body)
    with BuildSketch(Plane(origin=(0, 0, 0), x_dir=(-1, 0, 0), z_dir=(0, -1, 0))):
        with Locations((0.069514665, -25.487898811)):
            Rectangle(SKETCH27_W, SKETCH27_H)
    extrude(amount=BOSS_EXTRUDE18_DEPTH)

    # Sketch29 → Cut-Extrude24 (cut)
    with BuildSketch(Plane(origin=(0, 0, 0), x_dir=(1, 0, 0), z_dir=(0, 1, 0))):
        with Locations((0, -25.564311012)):
            Rectangle(SKETCH29_W, SKETCH29_H)
    extrude(amount=-CUT_EXTRUDE24_DEPTH, mode=Mode.SUBTRACT)

    # Sketch30 → Cut-Extrude25 (cut)
    with BuildSketch(Plane(origin=(0, -3, 0), x_dir=(-1, 0, 0), z_dir=(0, -1, 0))):
        with Locations((-23.467556266, -25.487898811)):
            Rectangle(SKETCH30_W, SKETCH30_H)
    extrude(amount=-CUT_EXTRUDE25_DEPTH, mode=Mode.SUBTRACT)

    # Sketch32 → Cut-Extrude27 (cut)
    with BuildSketch(Plane.ZY.offset(25.63902933)):
        with Locations((25.487898811, -1.5)):
            Rectangle(SKETCH32_W, SKETCH32_H)
    extrude(amount=-CUT_EXTRUDE27_DEPTH, mode=Mode.SUBTRACT)


solid = Compound([part.part, body_2.part])
